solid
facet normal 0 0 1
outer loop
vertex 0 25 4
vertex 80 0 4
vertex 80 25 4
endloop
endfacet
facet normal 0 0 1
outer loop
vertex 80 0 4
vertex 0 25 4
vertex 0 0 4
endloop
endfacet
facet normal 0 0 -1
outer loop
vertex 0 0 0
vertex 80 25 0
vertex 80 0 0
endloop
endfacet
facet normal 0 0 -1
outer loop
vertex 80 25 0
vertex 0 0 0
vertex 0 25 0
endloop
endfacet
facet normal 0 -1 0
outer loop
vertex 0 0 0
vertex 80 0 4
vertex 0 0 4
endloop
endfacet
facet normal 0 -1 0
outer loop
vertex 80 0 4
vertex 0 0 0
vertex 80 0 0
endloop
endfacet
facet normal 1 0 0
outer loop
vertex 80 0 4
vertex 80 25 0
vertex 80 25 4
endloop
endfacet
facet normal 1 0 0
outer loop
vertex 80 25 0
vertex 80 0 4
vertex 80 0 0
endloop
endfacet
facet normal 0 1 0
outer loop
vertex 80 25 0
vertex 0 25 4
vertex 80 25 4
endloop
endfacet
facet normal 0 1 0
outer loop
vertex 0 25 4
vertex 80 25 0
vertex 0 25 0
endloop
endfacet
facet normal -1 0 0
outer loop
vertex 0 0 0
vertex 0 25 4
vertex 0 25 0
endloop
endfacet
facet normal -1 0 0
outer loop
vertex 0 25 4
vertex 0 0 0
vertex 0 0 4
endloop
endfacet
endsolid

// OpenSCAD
// Define dimensions for the rectangular block
block_length = 80;  // Increased length to elongate the block to match the original model
block_width = 25;   // Reduced width to narrow the block and match the original proportions
block_height = 4;   // Reduced height to make the block thinner and match the original model

// Create the rectangular block
cube([block_length, block_width, block_height]);
